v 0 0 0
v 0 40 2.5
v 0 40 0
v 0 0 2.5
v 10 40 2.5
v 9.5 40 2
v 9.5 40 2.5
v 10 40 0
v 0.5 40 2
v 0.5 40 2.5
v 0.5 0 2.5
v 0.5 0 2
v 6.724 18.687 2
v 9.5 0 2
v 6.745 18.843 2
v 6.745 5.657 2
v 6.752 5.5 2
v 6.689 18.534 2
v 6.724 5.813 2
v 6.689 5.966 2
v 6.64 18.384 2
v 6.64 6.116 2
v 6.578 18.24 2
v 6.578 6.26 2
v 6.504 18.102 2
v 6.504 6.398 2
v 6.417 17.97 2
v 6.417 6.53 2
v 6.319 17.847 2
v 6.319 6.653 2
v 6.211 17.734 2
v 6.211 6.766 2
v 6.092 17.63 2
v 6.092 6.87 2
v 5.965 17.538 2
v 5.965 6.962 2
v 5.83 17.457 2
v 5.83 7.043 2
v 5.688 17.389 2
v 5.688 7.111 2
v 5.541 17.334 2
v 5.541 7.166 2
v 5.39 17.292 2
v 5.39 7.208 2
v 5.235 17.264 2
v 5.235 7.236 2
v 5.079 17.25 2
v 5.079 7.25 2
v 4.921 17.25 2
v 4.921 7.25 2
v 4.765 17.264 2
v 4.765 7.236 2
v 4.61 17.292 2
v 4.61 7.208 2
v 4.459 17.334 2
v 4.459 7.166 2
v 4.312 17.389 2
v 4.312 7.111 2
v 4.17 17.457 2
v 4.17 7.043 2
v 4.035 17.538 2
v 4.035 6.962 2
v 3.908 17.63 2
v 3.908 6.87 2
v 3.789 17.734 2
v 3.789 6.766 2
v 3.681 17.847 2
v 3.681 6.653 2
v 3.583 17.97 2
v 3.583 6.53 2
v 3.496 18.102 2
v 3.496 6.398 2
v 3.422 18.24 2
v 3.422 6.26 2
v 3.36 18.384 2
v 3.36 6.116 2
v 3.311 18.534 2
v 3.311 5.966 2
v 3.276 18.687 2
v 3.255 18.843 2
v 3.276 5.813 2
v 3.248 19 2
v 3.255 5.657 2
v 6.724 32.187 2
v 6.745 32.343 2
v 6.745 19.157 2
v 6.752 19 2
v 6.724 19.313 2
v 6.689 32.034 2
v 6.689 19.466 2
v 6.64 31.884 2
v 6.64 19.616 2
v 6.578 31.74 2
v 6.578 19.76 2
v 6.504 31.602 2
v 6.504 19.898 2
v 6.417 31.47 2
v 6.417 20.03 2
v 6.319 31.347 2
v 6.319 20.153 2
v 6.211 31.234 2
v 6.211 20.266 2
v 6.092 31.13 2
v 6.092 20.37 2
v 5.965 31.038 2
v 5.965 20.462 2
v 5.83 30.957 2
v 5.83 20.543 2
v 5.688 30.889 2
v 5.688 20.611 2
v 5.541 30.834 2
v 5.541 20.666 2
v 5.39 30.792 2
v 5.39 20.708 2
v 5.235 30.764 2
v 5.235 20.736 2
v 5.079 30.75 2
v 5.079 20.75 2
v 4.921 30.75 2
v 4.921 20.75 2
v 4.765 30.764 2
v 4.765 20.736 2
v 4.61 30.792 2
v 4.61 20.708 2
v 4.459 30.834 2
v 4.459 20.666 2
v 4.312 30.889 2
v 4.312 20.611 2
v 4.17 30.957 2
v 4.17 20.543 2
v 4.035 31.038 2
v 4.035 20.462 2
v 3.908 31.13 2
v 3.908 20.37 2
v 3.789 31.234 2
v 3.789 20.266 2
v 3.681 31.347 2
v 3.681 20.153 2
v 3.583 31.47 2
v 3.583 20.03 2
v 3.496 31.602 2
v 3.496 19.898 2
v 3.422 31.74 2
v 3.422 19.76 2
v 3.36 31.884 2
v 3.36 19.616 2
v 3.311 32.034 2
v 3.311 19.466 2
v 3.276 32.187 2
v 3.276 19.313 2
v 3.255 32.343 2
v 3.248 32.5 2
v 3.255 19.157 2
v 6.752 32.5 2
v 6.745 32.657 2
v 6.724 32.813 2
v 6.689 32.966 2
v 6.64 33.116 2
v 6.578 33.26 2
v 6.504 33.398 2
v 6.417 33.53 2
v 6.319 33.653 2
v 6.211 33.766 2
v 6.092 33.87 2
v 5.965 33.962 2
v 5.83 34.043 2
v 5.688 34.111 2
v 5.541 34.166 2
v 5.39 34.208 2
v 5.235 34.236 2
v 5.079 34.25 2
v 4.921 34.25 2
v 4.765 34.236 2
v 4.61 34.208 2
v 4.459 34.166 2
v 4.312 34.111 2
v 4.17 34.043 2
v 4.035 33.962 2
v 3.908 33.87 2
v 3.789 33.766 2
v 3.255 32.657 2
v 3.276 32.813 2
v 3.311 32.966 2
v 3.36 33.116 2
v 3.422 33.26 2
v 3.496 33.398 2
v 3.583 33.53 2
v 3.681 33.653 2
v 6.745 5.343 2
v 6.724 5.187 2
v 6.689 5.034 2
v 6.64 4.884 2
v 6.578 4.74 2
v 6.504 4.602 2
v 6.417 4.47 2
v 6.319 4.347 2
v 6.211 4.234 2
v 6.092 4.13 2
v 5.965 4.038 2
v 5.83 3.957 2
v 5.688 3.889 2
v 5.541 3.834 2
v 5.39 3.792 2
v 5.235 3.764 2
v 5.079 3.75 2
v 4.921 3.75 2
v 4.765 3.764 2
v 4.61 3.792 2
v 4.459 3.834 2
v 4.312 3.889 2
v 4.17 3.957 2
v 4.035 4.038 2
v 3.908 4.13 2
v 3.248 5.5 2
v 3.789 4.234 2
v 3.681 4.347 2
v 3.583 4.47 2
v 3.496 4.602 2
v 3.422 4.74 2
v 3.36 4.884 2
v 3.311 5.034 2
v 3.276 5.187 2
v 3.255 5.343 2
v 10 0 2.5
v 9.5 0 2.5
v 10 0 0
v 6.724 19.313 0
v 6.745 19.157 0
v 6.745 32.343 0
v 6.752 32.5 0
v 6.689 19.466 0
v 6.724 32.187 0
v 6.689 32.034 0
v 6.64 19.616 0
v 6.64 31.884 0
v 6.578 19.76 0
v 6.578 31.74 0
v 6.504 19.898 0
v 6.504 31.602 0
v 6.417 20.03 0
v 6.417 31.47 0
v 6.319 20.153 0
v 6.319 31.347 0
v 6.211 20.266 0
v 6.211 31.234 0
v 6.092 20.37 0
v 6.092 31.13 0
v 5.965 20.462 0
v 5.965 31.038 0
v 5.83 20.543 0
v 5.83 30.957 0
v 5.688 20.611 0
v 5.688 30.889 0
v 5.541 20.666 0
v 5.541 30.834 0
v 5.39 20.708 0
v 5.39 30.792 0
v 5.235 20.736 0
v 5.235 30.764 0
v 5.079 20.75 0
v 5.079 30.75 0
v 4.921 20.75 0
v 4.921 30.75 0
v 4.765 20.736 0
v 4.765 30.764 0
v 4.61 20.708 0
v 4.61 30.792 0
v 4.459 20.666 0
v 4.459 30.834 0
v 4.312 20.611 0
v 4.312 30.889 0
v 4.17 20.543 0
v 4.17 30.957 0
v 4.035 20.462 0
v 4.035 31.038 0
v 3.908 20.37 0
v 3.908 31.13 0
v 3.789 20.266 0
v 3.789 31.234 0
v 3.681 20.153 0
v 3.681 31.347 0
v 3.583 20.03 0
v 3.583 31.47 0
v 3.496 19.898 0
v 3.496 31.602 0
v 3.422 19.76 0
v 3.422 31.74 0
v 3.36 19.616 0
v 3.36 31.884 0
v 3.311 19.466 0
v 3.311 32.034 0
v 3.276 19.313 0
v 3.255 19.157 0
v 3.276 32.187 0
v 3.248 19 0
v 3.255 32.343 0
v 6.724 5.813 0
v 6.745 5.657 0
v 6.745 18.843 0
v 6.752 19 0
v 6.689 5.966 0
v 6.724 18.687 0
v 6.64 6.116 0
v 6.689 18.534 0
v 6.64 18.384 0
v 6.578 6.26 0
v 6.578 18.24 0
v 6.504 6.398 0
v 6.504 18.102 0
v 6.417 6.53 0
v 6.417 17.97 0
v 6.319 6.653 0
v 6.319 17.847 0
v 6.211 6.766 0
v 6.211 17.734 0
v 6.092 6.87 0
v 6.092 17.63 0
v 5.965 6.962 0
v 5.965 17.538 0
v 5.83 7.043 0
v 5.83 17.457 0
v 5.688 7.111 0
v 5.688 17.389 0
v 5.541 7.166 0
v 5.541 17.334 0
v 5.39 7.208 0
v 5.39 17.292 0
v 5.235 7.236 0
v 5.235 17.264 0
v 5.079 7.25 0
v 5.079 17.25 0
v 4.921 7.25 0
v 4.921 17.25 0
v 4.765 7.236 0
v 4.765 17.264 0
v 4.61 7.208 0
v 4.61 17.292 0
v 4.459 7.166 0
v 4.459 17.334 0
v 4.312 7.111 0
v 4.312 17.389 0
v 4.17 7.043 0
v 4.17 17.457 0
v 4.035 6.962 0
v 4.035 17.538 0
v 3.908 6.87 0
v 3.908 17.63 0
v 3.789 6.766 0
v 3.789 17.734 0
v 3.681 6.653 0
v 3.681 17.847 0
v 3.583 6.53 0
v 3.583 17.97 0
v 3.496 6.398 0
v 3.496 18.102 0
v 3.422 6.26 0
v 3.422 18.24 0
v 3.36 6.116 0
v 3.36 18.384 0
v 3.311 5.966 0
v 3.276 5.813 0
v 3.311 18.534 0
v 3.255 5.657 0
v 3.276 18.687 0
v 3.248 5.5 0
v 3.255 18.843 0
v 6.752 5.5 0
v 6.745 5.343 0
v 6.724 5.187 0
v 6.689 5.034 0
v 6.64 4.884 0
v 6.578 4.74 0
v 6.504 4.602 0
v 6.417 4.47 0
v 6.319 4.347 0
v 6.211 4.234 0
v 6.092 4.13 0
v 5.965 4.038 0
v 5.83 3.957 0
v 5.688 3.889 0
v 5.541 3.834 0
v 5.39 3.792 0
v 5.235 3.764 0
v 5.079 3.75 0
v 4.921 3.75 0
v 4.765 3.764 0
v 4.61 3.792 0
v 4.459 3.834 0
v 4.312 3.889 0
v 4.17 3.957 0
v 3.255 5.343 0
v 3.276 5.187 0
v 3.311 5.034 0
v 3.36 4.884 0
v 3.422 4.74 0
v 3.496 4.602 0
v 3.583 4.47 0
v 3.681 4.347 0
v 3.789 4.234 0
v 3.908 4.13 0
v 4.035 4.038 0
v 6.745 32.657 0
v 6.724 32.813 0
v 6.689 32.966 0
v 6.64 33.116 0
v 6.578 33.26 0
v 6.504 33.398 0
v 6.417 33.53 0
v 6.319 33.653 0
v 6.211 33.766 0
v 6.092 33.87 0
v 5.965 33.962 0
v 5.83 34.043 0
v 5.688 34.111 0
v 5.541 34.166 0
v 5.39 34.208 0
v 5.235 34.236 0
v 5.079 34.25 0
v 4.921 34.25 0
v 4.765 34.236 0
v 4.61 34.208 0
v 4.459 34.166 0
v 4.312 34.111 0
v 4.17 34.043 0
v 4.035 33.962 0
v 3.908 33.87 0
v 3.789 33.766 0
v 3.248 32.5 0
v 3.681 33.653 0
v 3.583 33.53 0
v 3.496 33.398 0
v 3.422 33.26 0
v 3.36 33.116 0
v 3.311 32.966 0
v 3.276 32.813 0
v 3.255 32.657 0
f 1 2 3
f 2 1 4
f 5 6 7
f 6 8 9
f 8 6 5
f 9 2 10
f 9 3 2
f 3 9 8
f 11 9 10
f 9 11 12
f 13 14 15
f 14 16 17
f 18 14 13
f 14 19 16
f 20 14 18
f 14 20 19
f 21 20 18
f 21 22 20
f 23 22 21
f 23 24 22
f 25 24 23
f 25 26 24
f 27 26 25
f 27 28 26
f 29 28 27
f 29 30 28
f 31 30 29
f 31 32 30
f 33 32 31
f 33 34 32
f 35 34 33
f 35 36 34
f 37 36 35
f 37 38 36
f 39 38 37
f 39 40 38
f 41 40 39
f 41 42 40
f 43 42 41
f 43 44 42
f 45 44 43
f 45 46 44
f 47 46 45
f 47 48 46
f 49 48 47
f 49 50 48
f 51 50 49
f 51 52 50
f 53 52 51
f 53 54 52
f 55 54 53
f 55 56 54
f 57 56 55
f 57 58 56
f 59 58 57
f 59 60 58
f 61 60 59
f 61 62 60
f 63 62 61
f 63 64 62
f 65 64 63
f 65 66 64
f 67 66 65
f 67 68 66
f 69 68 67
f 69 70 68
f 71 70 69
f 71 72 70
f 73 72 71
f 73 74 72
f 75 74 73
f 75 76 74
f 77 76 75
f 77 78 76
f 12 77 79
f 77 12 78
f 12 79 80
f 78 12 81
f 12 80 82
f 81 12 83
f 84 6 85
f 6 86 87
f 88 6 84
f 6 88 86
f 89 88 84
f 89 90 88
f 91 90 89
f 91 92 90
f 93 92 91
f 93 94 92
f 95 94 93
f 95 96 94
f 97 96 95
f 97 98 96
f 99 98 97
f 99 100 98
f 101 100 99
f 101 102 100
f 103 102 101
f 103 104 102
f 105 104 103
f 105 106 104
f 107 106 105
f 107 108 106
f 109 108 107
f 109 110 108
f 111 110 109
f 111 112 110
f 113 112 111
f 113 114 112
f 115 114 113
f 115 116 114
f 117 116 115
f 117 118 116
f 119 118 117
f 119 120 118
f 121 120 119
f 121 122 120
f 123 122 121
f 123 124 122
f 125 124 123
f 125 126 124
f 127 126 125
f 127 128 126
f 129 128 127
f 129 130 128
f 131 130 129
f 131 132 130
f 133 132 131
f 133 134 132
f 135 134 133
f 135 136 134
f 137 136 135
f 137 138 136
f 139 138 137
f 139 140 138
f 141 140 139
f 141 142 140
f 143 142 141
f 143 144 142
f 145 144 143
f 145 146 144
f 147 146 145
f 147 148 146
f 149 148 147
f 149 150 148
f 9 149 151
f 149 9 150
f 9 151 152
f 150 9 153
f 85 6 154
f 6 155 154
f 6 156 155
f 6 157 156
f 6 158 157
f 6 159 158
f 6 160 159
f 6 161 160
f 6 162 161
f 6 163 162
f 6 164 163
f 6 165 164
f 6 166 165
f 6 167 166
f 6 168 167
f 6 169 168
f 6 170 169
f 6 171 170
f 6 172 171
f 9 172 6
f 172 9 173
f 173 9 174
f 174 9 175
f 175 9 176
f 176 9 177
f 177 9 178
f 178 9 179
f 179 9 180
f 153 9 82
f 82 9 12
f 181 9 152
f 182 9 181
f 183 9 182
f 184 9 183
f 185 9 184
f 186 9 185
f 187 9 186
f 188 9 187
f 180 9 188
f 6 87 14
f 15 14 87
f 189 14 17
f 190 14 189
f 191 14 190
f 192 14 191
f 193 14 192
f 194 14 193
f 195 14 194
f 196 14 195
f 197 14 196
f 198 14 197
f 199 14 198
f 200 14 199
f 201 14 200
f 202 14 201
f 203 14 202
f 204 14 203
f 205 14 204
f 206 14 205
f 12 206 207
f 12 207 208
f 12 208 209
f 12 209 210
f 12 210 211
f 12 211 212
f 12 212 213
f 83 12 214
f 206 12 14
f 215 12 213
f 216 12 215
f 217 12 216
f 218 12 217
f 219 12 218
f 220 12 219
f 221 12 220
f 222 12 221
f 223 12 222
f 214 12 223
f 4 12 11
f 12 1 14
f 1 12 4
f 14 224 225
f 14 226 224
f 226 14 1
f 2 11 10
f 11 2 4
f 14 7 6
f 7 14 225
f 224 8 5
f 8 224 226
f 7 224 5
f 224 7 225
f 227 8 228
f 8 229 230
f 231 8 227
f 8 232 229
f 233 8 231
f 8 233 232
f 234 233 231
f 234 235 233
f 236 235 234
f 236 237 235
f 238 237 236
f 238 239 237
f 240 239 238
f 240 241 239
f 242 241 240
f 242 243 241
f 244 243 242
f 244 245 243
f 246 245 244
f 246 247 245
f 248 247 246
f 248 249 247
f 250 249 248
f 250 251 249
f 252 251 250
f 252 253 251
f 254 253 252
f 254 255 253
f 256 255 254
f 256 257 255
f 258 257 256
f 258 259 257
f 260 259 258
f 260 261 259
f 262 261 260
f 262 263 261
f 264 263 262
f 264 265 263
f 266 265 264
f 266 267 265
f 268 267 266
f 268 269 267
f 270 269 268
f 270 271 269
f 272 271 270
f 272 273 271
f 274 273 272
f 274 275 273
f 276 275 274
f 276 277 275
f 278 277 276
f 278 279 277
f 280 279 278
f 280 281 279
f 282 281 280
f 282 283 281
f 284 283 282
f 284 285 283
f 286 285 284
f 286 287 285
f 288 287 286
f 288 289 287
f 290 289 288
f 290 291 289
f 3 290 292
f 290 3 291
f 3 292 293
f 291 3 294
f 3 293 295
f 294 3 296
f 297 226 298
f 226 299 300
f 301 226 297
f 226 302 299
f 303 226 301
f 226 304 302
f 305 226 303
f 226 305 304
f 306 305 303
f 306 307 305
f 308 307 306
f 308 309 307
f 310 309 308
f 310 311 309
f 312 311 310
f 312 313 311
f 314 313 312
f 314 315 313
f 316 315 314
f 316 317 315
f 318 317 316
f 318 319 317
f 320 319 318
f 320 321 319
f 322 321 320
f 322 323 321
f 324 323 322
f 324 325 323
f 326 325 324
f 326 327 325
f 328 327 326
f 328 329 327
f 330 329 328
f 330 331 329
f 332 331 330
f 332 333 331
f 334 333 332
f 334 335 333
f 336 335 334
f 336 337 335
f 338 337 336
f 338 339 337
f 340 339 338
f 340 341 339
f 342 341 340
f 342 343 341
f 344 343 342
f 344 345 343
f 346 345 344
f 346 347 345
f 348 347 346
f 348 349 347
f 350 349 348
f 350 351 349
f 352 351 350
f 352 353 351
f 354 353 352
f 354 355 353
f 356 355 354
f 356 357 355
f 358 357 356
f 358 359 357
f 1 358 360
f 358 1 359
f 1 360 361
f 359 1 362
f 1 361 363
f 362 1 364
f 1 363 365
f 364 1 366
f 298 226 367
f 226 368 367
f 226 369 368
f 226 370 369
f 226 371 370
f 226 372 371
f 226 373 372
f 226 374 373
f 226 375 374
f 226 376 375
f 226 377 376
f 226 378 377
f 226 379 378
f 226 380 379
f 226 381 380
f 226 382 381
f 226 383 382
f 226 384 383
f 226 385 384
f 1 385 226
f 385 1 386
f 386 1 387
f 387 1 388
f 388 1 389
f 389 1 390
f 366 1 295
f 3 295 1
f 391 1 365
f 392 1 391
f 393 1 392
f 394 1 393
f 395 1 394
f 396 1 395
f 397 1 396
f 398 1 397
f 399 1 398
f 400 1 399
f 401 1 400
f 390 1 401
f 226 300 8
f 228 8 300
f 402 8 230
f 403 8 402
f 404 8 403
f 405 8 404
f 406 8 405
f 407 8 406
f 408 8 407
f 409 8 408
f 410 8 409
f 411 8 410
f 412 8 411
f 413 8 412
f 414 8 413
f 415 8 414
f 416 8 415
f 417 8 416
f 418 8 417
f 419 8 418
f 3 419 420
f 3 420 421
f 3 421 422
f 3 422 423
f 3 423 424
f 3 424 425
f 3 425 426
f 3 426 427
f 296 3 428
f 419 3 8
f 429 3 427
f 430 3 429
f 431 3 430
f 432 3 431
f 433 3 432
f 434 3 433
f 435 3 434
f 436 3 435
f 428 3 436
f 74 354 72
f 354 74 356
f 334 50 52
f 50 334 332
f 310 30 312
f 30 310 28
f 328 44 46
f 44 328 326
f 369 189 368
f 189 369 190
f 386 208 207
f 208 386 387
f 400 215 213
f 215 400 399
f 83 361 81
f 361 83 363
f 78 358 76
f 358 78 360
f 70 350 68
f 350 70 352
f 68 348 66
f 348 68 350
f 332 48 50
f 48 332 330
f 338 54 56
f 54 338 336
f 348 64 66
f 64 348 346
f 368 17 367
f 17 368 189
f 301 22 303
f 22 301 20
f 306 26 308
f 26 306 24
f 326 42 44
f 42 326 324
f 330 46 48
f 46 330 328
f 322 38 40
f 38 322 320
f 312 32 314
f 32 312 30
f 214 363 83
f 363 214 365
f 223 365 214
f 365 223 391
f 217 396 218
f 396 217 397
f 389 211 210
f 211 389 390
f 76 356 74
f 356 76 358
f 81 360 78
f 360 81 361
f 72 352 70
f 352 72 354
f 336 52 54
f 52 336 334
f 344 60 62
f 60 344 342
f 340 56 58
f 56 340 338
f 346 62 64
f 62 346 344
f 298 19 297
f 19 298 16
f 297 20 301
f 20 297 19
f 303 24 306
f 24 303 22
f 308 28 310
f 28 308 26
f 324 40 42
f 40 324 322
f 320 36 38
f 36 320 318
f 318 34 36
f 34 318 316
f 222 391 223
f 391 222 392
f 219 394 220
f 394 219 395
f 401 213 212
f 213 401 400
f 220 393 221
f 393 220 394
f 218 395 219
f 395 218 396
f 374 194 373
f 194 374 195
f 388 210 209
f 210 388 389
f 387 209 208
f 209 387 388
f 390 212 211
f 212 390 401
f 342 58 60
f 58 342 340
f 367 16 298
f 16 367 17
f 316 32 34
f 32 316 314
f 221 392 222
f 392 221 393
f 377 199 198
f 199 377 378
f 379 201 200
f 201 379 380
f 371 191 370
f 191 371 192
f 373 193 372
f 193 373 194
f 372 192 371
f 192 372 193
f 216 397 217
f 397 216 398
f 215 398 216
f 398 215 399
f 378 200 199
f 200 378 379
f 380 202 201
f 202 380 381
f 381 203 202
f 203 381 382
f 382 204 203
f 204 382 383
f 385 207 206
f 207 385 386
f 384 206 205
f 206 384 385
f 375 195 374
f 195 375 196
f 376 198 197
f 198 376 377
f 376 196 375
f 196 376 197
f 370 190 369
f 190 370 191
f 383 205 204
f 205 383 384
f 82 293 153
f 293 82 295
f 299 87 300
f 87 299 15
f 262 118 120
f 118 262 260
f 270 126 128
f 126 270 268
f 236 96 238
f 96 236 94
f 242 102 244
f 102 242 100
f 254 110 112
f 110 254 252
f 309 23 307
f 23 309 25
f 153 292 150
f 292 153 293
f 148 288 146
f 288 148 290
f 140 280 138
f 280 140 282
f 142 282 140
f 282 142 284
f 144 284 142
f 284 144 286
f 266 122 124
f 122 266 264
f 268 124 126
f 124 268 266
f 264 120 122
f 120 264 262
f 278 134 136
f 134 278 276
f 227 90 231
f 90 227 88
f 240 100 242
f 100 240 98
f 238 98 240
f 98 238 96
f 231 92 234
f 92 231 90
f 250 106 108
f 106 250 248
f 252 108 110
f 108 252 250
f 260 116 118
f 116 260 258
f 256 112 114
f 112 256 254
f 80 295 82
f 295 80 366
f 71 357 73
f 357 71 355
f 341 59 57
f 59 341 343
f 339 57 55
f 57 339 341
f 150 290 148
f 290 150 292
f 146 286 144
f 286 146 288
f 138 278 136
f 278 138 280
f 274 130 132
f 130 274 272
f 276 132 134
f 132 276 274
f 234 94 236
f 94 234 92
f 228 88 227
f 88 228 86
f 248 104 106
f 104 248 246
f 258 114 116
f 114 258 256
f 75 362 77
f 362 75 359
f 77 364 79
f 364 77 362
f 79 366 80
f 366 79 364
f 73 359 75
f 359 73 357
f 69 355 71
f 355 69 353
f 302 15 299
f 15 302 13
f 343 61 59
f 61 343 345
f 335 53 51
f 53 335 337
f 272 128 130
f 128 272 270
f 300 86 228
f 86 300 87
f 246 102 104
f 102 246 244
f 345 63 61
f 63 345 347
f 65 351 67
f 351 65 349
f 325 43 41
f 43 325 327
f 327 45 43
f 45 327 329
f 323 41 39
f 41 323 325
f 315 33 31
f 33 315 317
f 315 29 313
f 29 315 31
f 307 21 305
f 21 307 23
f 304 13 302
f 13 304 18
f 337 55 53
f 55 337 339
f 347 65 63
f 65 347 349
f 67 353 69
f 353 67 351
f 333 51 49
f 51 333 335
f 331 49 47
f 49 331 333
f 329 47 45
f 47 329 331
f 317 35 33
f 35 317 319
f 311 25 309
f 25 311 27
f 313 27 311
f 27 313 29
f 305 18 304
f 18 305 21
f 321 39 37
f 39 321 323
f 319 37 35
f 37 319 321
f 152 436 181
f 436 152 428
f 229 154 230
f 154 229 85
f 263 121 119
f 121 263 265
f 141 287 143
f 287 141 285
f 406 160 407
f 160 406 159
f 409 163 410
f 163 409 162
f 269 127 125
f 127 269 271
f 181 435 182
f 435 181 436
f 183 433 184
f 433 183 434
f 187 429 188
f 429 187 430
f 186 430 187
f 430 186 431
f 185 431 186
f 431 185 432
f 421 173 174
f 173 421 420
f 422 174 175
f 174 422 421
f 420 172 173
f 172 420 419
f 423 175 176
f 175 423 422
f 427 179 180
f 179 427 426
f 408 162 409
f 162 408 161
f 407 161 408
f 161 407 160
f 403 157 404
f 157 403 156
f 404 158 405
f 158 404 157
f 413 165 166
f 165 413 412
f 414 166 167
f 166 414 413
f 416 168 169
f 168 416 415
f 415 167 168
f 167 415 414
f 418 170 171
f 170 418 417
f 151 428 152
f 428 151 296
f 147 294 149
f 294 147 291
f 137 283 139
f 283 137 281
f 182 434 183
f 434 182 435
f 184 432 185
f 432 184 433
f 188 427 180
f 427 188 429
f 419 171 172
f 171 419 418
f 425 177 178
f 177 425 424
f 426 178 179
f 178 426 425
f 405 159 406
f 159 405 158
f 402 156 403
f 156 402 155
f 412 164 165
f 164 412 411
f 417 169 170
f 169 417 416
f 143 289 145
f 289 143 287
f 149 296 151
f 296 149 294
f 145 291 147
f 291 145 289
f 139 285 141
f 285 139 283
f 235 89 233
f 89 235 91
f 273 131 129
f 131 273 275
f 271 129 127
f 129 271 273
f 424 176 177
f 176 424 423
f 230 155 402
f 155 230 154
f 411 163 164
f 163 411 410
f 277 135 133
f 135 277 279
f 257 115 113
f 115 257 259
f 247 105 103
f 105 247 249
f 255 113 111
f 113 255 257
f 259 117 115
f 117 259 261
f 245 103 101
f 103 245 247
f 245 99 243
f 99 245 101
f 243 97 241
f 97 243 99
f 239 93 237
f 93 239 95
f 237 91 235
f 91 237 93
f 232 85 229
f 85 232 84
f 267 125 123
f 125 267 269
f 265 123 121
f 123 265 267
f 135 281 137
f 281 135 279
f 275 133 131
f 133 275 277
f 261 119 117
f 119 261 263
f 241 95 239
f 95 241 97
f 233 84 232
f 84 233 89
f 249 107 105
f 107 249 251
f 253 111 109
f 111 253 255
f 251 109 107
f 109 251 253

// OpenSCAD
// file: ../parts/lmu10.scad
module lmu10(hollow = false)
{
    difference()
    {
        cylinder(d = 19, h = 29, $fn = 100);
        if (hollow == true)
        {
            cylinder(d = 10, h = 29, $fn = 100);
        }
    }
}
// file: ../parts/nema17MotorPlate.scad
nema17PlateWidth = 42.3;

module nema17MotorPlate(h = 2)
{
    difference()
    {
        cube([42.3, 42.3, h]);

        translate([42.3 / 2, 42.3 / 2, -.1])
            polyhole(d = 22.5, h = h + .2);
        
        o = (42.3 - 31) / 2;

        translate([o, o, -.1])
            hole3mm(h = h + .2);
        translate([o, 42.3 - o, -.1])
            hole3mm(h = h + .2);
        translate([42.3 - o, o, -.1])
            hole3mm(h = h + .2);            
        translate([42.3 - o, 42.3 - o, -.1])
            hole3mm(h = h + .2);
    }
}
// file: ../functions.scad
module polyhole(h, d)
{
    n = max(round(20 * d), 3);

    rotate([0,0,180])
    {
        cylinder(h = h, r = (d / 2) / cos (180 / n), $fn = n);
    }
}

module triangle(out, up, thick, center=false)
{
    centroid = center ? [-a_len/3, -o_len/3, -depth/2] : [0, 0, 0];
    rotate([0, -90, 0])
    translate(centroid) linear_extrude(height=thick)
    {
        polygon(points=[[0,0],[0,out],[up,0]], paths=[[0,1,2]]);
    }
}
// file: ../materials.scad
module extrusionVertical(x = 20, y = 20, l)
{
    difference()
    {
        cube([x, y, l]);

        translate([x-10 - 5/2, -.1, -.1])
            cube([5, 2, l+.2]);

        translate([x-10 - 5/2, y - 2, -.1])
            cube([5, 2.1, l+.2]);

        translate([x - 3, 10 - 5/2, -.1])
            cube([3.1, 5, l+.2]);

        translate([-0.1, 10-5/2, -.1])
            cube([3.1, 5, l+.2]);
    }
}

module extrusionHorizontalY(x = 20, y = 20, l)
{
    difference()
    {
        cube([x, l, y]);

        translate([x-10 - 5/2, .1, -.1])
            cube([5, l + .2, 2]);

        translate([x-10 - 5/2, -.1, y-2])
            cube([5, l + .2, 2.1]);

        translate([-.1, -.1, 10 - 5/2])
            cube([2.1, l + .2, 5]);
        translate([-.1, -.1, y - 10 - 5/2])
            cube([2.1, l + .2, 5]);

        translate([x - 3, -1, 10 - 5/2])
            cube([3.1, l + .2, 5]);
        translate([x - 3, -1, y - 10 - 5/2])
            cube([3.1, l + .2, 5]);
    }
}

module extrusionHorizontalX(x = 20, y = 20, l)
{
    difference()
    {
        cube([l, x, y]);

        translate([-.1,x-10 - 5/2, -.1])
            cube([l + .2, 5, 2]);

        translate([-.1, x-10 - 5/2, y-2])
            cube([l + .2, 5, 2.1]);

        translate([-.1, -.1, 10 - 5/2])
            cube([l + .2, 2.1, 5]);
        translate([-.1, -.1, y - 10 - 5/2])
            cube([l + .2, 2.1, 5]);

        translate([-.1, x - 3, 10 - 5/2])
             cube([l + .2, 3.1, 5]);
        translate([-.1, x - 3, y - 10 - 5/2])
             cube([l + .2, 3.1, 5]);
    }
}

module tenMMBar(l)
{
    cylinder(d = 10.5, h = l, $fn = 100);
}

module pomNutMount(h = 3.5)
{
    polyhole(d = 10.5, h = h);
    pomNutHoles(h = h);
}

module pomNutHoles(h) {
    translate([-7.75, 0, 0])
        hole3mm(h = h);
    translate([0, -7.75, 0])
        hole3mm(h = h);
    translate([7.75, 0, 0])
        hole3mm(h = h);
    translate([0, 7.75, 0])
        hole3mm(h = h);
}

module pomNut() {
    difference() {
        union() {
            polyhole(d = 10.5, h = 10.5);
            translate([0, 0, 1.5])
                polyhole(d = 22, h = 3.5);
        }

        translate([0, 0, -.1])
            polyhole(d = (10.5 - (1.8*2)), h = 10.7);

        translate([0, 0, 1.4]) {
            pomNutHoles(h = 3.7);
        }
    }
}

module bearings12mm()
{
    difference() {
        union() {
            polyhole(d = 15, h = 1.5);
            polyhole(d = 12, h = 10);
            translate([0,0,8.5])
                polyhole(d = 15, h = 1.5);
        }
        translate([0, 0, -.1])
            polyhole(d = 4, h = 10.2);
    }
}
// file: ../parts/y-carriageBearingClamp.scad
yCarriageBearingHeight = 80;
yCarriageBearingInset = 2.5;
yCarriageBearingDiameter = 19;
yCarriageBearingRadius = yCarriageBearingDiameter / 2;
yCarriageBearingClampBarrelThickness = 2;
yCarriageBearingClampBarrelWidth = 40;
yCarriageBearingClampDiameter = yCarriageBearingClampBarrelThickness * 2 + yCarriageBearingDiameter;
yCarriageBearingClampRadius = yCarriageBearingClampDiameter / 2;

module yCarriageBearingClampBarrel() {
    difference() {
        union() {
            translate([0, yCarriageBearingRadius - yCarriageBearingInset, yCarriageBearingClampRadius])
            rotate([90, 90, 90])
                difference() {
                    polyhole(d = yCarriageBearingClampDiameter, h = yCarriageBearingClampBarrelWidth);
                    
                    translate([0, 0, -.1])
                        polyhole(d = yCarriageBearingDiameter, h = yCarriageBearingClampBarrelWidth + .2);
                }
        }

        translate([-.1, -.1 - yCarriageBearingInset - yCarriageBearingClampBarrelThickness, -.1])
            cube([yCarriageBearingClampBarrelWidth + .2, yCarriageBearingClampRadius, yCarriageBearingClampDiameter + .2]);
    }

    cube([yCarriageBearingClampBarrelWidth, yCarriageBearingRadius - yCarriageBearingInset, yCarriageBearingClampBarrelThickness]);
    translate([0, 0, yCarriageBearingDiameter + yCarriageBearingClampBarrelThickness])
        cube([yCarriageBearingClampBarrelWidth, yCarriageBearingRadius - yCarriageBearingInset, yCarriageBearingClampBarrelThickness]);
}

module yCarriageBearingBeltClamp() {
    difference() {
            union() {
                cube([.5, .5, 40]);
                translate([9.5, 0, 0])
                    cube([.5, .5, 40]);
                translate([0, .5, 0])
                    cube([10, 2, 40]);
            }
        yCarriageBearingBeltClampHoles();
    }
}

module yCarriageBearingBeltClampHoles() {
    translate([5, 0, 5.5])
        rotate([-90,0,0])
            polyhole(d = 3.5, h = 100);
    translate([5, 0, 19])
        rotate([-90,0,0])
            polyhole(d = 3.5, h = 100);
    translate([5, 0, 32.5])
        rotate([-90,0,0])
            polyhole(d = 3.5, h = 100);
}

module yCarriageBearingClamp() {
    //clamp parts
    translate([0, 0, 20 - yCarriageBearingClampRadius]) 
        yCarriageBearingClampBarrel();
    translate([0, 0, 60 - yCarriageBearingClampRadius])
        yCarriageBearingClampBarrel();

    //brackets
    difference()
    {
        cube([yCarriageBearingClampBarrelWidth, yCarriageBearingClampBarrelThickness, 10]);
        translate([5, -.1, 5])
            rotate([-90,0,0])
                polyhole(d = 3.5, h = yCarriageBearingClampBarrelThickness + .2);
        translate([yCarriageBearingClampBarrelWidth / 2, -.1, 5])
            rotate([-90,0,0])
                polyhole(d = 3.5, h = yCarriageBearingClampBarrelThickness + .2);
        translate([yCarriageBearingClampBarrelWidth - 5, -.1, 5])
            rotate([-90,0,0])
                polyhole(d = 3.5, h = yCarriageBearingClampBarrelThickness + .2);
    }

    translate([0, 0, 70])
    difference()
    {
        cube([yCarriageBearingClampBarrelWidth, yCarriageBearingClampBarrelThickness, 10]);
        translate([5, -.1, 5])
            rotate([-90,0,0])
                polyhole(d = 3.5, h = yCarriageBearingClampBarrelThickness + .2);
        translate([yCarriageBearingClampBarrelWidth / 2, -.1, 5])
            rotate([-90,0,0])
                polyhole(d = 3.5, h = yCarriageBearingClampBarrelThickness + .2);
        translate([yCarriageBearingClampBarrelWidth - 5, -.1, 5])
            rotate([-90,0,0])
                polyhole(d = 3.5, h = yCarriageBearingClampBarrelThickness + .2);
    }

    h = 80 - yCarriageBearingDiameter * 2 - 21;
    translate([0, 0, 40 - h / 2])
    difference()
    {
        cube([yCarriageBearingClampBarrelWidth, yCarriageBearingClampBarrelThickness, h]);
        translate([5, -.1, h / 2])
            rotate([-90,0,0])
                polyhole(d = 3.5, h = yCarriageBearingClampBarrelThickness + .2);
        translate([yCarriageBearingClampBarrelWidth / 2, -.1, h / 2])
            rotate([-90,0,0])
                polyhole(d = 3.5, h = yCarriageBearingClampBarrelThickness + .2);
        translate([yCarriageBearingClampBarrelWidth - 5, -.1, h / 2])
            rotate([-90,0,0])
                polyhole(d = 3.5, h = yCarriageBearingClampBarrelThickness + .2);
    }

    // belt tensioning
    translate([0, yCarriageBearingDiameter - yCarriageBearingInset, 20]) {
        cube([40, 2, 40]);
        translate([0, 11, 7.5])
            difference() {
                union() {    
                    hull() {
                        rotate([0,90,0])
                            cylinder(d = 15, h = 10, $fn = 100);

                        translate([0, 0, 40 - 15])
                            rotate([0,90,0])
                                cylinder(d = 15, h = 10, $fn = 100);
                    }
                    translate([0, -9.5, -7.5])
                        cube([10, 10.5, 40]);
                }
                translate([-.1, 1, 2])
                    cube([10.2, 4, 7]);
                translate([-.1, 1, 15])
                    cube([10.2, 4, 7]);
            }

        translate([30, 0, 0])
            difference() {
                union()
                {
                    cube([10, 13.5, 40]);
                    translate([5, 13.5, 0])
                        cube([1, .5, 40]);
                }
                translate([-.1, 9, 3])
                    cube([10.2, 2.5, 5.5]);
                translate([-.1, 9, 16.5])
                    cube([10.2, 2.5, 5.5]);
                translate([-.1, 9, 30])
                    cube([10.2, 2.5, 5.5]);

                yCarriageBearingBeltClampHoles();
            }
    }
}

module yCarriageHoleCutout() {
    // top
    translate([5, 0, yCarriageBearingHeight - 5])
        rotate([-90, 0, 0])
            polyhole(d = 3.5, h = 20);
    translate([20, 0, yCarriageBearingHeight - 5])
        rotate([-90, 0, 0])
            polyhole(d = 3.5, h = 20);
    translate([35, 0, yCarriageBearingHeight - 5])
        rotate([-90, 0, 0])
            polyhole(d = 3.5, h = 20);

    //middle
    translate([5, 0, 40])
        rotate([-90, 0, 0])
            polyhole(d = 3.5, h = 20);
    translate([20, 0, 40])
        rotate([-90, 0, 0])
            polyhole(d = 3.5, h = 20);
    translate([35, 0, 40])
        rotate([-90, 0, 0])
            polyhole(d = 3.5, h = 20);

    //bottom
    translate([5, 0, 5])
        rotate([-90, 0, 0])
            polyhole(d = 3.5, h = 20);
    translate([20, 0, 5])
        rotate([-90, 0, 0])
            polyhole(d = 3.5, h = 20);
    translate([35, 0, 5])
        rotate([-90, 0, 0])
            polyhole(d = 3.5, h = 20);
}
// file: ../parts/railClamp.scad
// this is where the 10mm rods go into to be clamped down

module railClamp(l = 20, d = 10, h = 10)
{
    difference(){        
        union()
        {
            translate([-7, -7, 0])
                cube([14, 12 + h, l]);

            translate([0, 5 + h, 0])
                cylinder(d = 14, h = l + 0, $fn=100);
        }

        translate([0, h - 1, -1])
            tenMMBar(l = l + 2);
            
        translate([-1, h, -.1])
            cube([2, 14, l + .2]);
        
        // screw holes
        translate([-7, h + 8, 5])
            rotate([0, 90, 0])
                hole3mm(h = 100);
        translate([-7, h + 8, 15])
            rotate([0, 90, 0])
                hole3mm(h = 100);

        //screw insets
        translate([-8, h + 5, 2])
            cube([5, 6, 6]);
        translate([-8, h + 5, 15 - 3])
            cube([5, 6, 6]);

        translate([3, h + 5, 2])
            cube([5, 6, 6]);
        translate([3, h + 5, 15 - 3])
            cube([5, 6, 6]);
    }
}
// file: ../common.scad
include <materials.scad>
include <functions.scad>
include <parts/nema17MotorPlate.scad>
include <parts/lmu10.scad>

zGantryBracketX = 20;
lmu10Diameter = 20;
lmu10Length = 29;

module hole5mm(h = 2.2) {
    polyhole(d = 5.5, h = h);
}

module hole3mm(h = 2.2) {
    polyhole(d = 3.5, h = h);
}
// main file
include <../common.scad>
include <../parts/railClamp.scad>
include <../parts/y-carriageBearingClamp.scad>

echo("With Supports: no");

translate([0,0,2.5])
    rotate([-90,0,0])
        yCarriageBearingBeltClamp();
